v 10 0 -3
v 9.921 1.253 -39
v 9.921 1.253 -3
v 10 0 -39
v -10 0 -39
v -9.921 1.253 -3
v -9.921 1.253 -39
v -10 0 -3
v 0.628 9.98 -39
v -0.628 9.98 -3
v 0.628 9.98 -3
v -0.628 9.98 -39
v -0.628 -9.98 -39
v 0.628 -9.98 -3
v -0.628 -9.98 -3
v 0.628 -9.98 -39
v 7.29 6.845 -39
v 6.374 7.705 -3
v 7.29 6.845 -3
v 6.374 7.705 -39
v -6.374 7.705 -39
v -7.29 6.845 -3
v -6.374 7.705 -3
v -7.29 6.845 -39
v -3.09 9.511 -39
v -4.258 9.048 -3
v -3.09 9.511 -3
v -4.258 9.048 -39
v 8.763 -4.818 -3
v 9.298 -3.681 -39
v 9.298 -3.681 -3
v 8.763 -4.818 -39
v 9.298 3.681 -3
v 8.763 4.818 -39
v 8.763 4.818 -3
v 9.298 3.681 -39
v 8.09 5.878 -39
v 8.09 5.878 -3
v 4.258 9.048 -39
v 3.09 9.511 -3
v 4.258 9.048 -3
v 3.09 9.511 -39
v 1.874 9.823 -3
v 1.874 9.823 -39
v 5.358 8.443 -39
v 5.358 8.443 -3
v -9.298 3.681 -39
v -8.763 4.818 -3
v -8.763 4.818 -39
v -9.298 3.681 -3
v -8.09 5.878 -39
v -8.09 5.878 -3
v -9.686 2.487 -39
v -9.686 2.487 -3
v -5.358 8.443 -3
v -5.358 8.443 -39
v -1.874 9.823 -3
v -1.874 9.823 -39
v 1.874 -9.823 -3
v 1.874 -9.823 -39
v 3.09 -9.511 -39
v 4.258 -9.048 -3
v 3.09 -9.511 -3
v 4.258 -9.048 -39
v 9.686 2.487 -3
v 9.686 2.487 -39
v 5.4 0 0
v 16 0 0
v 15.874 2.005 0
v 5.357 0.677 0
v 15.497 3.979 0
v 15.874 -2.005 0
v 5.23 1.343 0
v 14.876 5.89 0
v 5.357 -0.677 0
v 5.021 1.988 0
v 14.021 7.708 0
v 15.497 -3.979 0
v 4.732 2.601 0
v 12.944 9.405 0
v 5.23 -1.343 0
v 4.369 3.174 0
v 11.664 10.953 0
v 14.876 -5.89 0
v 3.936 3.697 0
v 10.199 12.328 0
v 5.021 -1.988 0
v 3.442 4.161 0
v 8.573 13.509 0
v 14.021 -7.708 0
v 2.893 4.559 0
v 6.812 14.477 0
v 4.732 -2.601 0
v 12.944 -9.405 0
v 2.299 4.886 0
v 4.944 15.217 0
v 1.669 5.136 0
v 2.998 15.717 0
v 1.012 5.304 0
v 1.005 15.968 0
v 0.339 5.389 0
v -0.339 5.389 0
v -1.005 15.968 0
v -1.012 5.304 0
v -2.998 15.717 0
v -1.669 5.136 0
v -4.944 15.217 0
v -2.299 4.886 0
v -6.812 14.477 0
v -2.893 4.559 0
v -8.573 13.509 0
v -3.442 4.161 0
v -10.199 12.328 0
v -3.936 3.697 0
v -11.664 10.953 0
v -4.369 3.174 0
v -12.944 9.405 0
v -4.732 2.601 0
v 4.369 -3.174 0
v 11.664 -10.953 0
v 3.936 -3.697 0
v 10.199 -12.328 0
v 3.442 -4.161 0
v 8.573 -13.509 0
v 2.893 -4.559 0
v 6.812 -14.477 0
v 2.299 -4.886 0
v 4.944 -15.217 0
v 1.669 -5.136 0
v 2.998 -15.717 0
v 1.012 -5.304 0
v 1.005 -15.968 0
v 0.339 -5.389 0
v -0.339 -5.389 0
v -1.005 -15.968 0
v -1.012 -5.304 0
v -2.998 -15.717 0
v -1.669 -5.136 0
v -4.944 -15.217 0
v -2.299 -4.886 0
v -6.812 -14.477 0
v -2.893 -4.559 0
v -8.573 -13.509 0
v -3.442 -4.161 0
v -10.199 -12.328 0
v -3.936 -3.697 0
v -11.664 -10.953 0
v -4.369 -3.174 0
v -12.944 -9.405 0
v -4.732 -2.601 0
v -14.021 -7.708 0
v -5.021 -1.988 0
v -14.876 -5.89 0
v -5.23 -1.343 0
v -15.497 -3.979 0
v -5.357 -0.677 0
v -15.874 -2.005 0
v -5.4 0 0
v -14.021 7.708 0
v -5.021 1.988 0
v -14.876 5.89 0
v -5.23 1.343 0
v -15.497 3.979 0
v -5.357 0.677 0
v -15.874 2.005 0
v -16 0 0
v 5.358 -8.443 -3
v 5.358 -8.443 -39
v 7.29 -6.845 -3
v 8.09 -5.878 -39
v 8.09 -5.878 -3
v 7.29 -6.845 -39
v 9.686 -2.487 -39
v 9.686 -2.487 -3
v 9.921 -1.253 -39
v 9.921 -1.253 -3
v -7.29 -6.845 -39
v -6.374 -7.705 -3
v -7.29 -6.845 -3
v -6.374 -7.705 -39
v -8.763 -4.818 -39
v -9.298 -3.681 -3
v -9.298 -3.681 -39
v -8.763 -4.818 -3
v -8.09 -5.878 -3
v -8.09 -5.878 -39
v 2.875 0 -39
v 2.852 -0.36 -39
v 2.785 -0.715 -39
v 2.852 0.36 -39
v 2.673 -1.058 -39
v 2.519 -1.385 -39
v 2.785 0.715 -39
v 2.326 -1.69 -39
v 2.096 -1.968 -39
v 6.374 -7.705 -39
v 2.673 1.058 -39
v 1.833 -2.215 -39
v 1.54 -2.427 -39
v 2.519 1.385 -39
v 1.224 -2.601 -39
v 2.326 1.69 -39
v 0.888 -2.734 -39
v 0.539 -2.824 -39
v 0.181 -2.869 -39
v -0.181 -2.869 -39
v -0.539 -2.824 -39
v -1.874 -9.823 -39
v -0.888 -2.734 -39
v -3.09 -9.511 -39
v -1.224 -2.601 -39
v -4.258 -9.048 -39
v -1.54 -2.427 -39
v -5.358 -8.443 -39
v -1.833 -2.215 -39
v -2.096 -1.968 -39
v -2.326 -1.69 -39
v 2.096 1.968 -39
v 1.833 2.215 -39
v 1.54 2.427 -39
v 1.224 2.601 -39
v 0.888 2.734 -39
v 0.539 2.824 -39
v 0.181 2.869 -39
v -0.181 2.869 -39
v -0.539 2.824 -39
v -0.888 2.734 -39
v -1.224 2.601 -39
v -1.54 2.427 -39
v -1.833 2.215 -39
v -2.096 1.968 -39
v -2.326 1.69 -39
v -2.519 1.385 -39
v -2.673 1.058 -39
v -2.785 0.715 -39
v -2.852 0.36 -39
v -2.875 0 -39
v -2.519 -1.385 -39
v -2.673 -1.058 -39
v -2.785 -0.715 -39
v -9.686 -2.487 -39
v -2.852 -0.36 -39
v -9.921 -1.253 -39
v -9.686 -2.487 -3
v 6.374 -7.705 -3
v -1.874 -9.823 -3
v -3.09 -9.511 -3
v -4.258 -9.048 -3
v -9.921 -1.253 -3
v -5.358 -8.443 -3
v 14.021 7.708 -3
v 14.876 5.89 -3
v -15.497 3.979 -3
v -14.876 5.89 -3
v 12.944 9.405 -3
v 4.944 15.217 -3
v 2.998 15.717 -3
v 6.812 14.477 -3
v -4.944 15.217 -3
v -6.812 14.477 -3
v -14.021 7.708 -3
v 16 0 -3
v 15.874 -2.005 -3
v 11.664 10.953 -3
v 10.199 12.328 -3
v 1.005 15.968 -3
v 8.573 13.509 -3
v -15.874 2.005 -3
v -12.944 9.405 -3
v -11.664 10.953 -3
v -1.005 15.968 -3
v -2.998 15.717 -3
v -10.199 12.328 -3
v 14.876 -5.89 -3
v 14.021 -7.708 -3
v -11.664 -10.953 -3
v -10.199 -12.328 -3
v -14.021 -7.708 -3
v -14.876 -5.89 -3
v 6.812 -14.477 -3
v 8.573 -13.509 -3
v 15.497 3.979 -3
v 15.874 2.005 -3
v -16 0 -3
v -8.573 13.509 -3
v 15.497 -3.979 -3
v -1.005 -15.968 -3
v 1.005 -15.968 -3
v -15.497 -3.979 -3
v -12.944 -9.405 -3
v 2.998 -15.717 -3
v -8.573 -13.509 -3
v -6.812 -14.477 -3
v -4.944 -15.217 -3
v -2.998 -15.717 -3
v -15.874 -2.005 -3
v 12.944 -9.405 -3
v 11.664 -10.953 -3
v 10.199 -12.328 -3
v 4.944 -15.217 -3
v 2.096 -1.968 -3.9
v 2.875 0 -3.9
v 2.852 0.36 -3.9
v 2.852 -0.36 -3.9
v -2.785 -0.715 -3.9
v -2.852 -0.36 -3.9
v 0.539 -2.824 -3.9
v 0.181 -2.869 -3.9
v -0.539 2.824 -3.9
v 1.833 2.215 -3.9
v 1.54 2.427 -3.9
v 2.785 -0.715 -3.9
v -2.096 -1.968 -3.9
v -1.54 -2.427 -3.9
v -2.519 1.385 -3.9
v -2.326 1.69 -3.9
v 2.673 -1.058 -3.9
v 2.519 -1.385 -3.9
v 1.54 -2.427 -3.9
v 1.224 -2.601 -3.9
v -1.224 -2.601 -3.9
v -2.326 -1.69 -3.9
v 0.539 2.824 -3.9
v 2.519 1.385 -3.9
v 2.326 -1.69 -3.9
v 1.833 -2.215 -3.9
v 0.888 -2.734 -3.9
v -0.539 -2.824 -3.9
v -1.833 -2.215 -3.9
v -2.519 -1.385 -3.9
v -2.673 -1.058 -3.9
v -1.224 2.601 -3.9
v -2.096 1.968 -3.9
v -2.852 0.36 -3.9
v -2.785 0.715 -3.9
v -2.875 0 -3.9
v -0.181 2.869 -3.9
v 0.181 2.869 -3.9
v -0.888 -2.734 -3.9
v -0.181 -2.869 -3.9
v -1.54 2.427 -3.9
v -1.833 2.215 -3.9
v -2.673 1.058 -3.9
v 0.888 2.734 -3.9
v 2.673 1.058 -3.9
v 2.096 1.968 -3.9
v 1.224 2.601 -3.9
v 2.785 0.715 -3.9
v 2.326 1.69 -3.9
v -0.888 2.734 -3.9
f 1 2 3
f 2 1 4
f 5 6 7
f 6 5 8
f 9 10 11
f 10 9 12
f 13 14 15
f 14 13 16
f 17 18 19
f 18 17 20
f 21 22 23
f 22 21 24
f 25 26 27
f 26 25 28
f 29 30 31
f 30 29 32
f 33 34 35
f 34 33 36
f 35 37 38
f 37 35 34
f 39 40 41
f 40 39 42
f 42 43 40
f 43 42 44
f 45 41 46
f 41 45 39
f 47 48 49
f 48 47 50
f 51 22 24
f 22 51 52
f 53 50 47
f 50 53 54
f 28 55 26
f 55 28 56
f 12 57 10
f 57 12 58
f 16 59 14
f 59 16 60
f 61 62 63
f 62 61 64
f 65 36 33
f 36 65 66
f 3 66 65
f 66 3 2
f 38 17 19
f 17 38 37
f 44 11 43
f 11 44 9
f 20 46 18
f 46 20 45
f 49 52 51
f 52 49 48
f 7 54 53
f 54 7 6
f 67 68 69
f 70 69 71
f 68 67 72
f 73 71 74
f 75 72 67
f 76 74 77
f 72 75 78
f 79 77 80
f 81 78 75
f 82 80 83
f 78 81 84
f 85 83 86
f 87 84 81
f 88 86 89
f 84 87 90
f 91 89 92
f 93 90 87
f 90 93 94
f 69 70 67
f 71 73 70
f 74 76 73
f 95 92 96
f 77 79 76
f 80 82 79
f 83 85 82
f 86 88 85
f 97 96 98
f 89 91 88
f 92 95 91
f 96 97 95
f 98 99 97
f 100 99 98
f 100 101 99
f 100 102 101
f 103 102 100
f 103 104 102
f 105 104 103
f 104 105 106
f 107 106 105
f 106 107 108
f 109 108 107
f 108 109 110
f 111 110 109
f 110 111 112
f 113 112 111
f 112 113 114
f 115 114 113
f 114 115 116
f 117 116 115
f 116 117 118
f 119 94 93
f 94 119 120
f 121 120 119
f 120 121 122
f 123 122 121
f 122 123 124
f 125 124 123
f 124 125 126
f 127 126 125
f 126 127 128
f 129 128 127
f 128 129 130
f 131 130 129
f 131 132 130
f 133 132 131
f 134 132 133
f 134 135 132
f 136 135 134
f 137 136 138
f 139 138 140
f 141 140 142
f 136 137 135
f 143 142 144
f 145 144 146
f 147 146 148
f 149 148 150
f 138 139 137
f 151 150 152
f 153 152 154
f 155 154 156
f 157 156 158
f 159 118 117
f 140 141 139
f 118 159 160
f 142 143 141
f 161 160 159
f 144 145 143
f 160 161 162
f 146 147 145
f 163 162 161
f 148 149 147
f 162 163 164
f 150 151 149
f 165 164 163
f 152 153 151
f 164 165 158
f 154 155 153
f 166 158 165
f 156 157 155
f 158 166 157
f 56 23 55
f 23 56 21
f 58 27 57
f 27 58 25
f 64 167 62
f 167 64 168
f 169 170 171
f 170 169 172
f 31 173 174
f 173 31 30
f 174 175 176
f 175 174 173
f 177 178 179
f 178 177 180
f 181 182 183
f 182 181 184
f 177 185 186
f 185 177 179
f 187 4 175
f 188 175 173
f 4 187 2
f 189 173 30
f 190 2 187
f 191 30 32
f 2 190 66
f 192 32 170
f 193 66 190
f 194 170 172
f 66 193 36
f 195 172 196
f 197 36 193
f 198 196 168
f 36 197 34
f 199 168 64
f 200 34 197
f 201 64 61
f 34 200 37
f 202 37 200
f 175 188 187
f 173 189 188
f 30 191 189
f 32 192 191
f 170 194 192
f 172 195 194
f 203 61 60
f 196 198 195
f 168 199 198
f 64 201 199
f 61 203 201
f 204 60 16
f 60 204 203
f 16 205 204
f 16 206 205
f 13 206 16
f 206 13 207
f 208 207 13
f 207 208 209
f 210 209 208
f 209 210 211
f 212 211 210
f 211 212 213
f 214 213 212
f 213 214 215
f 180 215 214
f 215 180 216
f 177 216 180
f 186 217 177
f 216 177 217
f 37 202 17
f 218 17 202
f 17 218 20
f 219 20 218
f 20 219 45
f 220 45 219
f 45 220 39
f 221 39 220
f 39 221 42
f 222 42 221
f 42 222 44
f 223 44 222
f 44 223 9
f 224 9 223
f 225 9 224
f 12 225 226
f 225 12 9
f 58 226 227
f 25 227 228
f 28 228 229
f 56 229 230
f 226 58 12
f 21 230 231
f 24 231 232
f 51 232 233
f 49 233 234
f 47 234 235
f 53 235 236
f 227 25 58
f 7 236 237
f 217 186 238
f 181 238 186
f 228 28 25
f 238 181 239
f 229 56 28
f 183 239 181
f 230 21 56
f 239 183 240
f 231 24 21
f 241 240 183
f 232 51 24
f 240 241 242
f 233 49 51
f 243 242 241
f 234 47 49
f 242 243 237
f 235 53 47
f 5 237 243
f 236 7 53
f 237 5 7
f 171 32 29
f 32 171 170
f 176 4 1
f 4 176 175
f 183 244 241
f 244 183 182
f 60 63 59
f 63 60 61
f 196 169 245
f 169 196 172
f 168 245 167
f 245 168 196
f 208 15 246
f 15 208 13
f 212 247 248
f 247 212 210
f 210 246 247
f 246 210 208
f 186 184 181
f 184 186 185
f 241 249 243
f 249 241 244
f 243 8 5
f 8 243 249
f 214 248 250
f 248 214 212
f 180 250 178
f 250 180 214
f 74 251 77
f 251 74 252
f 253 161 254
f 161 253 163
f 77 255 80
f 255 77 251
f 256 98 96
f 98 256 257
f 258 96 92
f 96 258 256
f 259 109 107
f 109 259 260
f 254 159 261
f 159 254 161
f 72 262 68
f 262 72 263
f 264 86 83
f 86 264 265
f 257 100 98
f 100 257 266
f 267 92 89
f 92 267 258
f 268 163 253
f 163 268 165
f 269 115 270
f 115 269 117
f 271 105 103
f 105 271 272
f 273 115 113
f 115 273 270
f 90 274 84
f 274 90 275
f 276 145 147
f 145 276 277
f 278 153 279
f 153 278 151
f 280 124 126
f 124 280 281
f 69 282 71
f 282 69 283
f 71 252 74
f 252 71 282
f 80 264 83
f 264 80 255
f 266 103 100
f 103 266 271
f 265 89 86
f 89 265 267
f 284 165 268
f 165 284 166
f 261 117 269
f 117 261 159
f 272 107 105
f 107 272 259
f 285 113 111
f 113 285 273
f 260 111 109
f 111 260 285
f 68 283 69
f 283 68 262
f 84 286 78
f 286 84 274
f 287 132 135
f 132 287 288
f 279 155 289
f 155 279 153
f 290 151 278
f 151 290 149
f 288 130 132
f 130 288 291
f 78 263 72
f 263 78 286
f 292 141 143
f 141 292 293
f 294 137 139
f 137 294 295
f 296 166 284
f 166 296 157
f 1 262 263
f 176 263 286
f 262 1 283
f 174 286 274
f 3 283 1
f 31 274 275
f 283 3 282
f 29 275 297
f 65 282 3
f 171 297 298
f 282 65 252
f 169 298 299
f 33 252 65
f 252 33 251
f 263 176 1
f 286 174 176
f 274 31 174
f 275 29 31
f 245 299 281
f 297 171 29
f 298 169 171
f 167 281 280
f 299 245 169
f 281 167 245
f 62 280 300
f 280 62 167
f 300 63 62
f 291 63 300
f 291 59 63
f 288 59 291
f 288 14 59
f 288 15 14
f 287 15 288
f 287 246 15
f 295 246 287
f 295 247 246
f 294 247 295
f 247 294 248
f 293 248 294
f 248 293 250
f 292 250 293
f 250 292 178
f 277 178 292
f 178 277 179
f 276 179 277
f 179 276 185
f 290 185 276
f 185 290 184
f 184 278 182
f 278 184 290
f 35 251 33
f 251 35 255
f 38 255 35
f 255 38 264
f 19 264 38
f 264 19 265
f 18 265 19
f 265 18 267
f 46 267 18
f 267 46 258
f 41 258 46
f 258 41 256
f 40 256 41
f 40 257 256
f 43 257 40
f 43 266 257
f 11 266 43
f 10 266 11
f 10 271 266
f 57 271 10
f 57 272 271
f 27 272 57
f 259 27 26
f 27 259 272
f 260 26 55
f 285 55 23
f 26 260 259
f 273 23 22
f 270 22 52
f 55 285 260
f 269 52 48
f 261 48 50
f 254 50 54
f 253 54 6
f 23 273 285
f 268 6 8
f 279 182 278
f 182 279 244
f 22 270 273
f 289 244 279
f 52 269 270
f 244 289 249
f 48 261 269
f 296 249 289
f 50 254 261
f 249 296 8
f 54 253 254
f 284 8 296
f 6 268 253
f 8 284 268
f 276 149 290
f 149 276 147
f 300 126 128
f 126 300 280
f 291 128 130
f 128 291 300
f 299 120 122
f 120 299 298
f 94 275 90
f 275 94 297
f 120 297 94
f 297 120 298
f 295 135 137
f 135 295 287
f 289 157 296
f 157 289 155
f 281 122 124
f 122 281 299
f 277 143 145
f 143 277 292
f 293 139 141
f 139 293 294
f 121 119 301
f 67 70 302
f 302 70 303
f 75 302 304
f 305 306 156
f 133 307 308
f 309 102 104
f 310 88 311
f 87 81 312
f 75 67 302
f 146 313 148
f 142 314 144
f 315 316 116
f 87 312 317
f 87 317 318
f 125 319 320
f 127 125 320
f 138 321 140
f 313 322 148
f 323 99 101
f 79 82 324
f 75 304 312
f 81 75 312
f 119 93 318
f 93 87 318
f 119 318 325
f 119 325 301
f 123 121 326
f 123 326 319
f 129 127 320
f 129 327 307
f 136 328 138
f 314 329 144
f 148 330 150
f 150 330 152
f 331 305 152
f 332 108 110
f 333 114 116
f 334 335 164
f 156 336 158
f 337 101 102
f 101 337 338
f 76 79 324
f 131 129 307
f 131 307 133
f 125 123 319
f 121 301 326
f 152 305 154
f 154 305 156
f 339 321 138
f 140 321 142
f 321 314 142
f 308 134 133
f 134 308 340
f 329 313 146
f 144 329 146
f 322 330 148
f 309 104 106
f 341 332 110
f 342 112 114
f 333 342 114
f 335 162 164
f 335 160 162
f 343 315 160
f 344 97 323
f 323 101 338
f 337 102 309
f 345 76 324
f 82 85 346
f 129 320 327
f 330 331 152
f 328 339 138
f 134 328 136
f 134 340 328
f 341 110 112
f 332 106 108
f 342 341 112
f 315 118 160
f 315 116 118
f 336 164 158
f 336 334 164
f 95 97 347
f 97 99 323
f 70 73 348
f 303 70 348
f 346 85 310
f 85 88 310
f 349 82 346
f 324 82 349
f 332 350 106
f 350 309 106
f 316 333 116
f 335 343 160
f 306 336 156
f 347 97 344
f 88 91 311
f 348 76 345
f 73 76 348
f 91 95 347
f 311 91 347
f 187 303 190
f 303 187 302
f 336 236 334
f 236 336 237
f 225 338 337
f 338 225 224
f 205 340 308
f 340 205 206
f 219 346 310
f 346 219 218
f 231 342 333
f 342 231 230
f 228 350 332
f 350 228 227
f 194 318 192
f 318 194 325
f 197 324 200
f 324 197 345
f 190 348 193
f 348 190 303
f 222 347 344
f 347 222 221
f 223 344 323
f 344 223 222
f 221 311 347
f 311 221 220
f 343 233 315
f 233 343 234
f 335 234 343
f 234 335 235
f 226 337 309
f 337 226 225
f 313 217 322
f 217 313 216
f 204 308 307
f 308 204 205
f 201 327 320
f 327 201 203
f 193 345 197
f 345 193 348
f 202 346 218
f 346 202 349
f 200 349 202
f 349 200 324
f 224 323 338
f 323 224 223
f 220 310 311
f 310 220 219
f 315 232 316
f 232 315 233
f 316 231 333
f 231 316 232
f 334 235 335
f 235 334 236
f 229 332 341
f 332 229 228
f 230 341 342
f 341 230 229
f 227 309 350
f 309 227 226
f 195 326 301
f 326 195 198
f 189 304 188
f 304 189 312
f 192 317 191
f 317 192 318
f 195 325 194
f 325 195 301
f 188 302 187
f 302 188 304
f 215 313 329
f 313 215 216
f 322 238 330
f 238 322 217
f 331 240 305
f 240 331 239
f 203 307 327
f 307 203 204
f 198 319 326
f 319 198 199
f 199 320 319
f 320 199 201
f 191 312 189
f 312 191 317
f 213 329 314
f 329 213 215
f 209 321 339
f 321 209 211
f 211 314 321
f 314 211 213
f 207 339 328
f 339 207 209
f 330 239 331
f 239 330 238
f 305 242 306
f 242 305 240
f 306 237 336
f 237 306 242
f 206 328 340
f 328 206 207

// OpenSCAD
$fn = 50;


difference() {
	union() {
		translate(v = [0, 0, -39.0000000000]) {
			cylinder(h = 39, r = 10.0000000000);
		}
		translate(v = [0, 0, -3.0000000000]) {
			cylinder(h = 3, r = 16.0000000000);
		}
	}
	union() {
		translate(v = [0, 0, 0]) {
			rotate(a = [0, 0, 0]) {
				difference() {
					union() {
						#translate(v = [0, 0, -39.0000000000]) {
							cylinder(h = 39, r = 2.6000000000);
						}
						#translate(v = [0, 0, -3.9000000000]) {
							cylinder(h = 3.9000000000, r = 10.0000000000, r1 = 2.8750000000, r2 = 5.4000000000);
						}
						#translate(v = [0, 0, -39.0000000000]) {
							cylinder(h = 39, r = 2.8750000000);
						}
						#translate(v = [0, 0, -39.0000000000]) {
							cylinder(h = 39, r = 2.6000000000);
						}
					}
					union();
				}
			}
		}
	}
}
